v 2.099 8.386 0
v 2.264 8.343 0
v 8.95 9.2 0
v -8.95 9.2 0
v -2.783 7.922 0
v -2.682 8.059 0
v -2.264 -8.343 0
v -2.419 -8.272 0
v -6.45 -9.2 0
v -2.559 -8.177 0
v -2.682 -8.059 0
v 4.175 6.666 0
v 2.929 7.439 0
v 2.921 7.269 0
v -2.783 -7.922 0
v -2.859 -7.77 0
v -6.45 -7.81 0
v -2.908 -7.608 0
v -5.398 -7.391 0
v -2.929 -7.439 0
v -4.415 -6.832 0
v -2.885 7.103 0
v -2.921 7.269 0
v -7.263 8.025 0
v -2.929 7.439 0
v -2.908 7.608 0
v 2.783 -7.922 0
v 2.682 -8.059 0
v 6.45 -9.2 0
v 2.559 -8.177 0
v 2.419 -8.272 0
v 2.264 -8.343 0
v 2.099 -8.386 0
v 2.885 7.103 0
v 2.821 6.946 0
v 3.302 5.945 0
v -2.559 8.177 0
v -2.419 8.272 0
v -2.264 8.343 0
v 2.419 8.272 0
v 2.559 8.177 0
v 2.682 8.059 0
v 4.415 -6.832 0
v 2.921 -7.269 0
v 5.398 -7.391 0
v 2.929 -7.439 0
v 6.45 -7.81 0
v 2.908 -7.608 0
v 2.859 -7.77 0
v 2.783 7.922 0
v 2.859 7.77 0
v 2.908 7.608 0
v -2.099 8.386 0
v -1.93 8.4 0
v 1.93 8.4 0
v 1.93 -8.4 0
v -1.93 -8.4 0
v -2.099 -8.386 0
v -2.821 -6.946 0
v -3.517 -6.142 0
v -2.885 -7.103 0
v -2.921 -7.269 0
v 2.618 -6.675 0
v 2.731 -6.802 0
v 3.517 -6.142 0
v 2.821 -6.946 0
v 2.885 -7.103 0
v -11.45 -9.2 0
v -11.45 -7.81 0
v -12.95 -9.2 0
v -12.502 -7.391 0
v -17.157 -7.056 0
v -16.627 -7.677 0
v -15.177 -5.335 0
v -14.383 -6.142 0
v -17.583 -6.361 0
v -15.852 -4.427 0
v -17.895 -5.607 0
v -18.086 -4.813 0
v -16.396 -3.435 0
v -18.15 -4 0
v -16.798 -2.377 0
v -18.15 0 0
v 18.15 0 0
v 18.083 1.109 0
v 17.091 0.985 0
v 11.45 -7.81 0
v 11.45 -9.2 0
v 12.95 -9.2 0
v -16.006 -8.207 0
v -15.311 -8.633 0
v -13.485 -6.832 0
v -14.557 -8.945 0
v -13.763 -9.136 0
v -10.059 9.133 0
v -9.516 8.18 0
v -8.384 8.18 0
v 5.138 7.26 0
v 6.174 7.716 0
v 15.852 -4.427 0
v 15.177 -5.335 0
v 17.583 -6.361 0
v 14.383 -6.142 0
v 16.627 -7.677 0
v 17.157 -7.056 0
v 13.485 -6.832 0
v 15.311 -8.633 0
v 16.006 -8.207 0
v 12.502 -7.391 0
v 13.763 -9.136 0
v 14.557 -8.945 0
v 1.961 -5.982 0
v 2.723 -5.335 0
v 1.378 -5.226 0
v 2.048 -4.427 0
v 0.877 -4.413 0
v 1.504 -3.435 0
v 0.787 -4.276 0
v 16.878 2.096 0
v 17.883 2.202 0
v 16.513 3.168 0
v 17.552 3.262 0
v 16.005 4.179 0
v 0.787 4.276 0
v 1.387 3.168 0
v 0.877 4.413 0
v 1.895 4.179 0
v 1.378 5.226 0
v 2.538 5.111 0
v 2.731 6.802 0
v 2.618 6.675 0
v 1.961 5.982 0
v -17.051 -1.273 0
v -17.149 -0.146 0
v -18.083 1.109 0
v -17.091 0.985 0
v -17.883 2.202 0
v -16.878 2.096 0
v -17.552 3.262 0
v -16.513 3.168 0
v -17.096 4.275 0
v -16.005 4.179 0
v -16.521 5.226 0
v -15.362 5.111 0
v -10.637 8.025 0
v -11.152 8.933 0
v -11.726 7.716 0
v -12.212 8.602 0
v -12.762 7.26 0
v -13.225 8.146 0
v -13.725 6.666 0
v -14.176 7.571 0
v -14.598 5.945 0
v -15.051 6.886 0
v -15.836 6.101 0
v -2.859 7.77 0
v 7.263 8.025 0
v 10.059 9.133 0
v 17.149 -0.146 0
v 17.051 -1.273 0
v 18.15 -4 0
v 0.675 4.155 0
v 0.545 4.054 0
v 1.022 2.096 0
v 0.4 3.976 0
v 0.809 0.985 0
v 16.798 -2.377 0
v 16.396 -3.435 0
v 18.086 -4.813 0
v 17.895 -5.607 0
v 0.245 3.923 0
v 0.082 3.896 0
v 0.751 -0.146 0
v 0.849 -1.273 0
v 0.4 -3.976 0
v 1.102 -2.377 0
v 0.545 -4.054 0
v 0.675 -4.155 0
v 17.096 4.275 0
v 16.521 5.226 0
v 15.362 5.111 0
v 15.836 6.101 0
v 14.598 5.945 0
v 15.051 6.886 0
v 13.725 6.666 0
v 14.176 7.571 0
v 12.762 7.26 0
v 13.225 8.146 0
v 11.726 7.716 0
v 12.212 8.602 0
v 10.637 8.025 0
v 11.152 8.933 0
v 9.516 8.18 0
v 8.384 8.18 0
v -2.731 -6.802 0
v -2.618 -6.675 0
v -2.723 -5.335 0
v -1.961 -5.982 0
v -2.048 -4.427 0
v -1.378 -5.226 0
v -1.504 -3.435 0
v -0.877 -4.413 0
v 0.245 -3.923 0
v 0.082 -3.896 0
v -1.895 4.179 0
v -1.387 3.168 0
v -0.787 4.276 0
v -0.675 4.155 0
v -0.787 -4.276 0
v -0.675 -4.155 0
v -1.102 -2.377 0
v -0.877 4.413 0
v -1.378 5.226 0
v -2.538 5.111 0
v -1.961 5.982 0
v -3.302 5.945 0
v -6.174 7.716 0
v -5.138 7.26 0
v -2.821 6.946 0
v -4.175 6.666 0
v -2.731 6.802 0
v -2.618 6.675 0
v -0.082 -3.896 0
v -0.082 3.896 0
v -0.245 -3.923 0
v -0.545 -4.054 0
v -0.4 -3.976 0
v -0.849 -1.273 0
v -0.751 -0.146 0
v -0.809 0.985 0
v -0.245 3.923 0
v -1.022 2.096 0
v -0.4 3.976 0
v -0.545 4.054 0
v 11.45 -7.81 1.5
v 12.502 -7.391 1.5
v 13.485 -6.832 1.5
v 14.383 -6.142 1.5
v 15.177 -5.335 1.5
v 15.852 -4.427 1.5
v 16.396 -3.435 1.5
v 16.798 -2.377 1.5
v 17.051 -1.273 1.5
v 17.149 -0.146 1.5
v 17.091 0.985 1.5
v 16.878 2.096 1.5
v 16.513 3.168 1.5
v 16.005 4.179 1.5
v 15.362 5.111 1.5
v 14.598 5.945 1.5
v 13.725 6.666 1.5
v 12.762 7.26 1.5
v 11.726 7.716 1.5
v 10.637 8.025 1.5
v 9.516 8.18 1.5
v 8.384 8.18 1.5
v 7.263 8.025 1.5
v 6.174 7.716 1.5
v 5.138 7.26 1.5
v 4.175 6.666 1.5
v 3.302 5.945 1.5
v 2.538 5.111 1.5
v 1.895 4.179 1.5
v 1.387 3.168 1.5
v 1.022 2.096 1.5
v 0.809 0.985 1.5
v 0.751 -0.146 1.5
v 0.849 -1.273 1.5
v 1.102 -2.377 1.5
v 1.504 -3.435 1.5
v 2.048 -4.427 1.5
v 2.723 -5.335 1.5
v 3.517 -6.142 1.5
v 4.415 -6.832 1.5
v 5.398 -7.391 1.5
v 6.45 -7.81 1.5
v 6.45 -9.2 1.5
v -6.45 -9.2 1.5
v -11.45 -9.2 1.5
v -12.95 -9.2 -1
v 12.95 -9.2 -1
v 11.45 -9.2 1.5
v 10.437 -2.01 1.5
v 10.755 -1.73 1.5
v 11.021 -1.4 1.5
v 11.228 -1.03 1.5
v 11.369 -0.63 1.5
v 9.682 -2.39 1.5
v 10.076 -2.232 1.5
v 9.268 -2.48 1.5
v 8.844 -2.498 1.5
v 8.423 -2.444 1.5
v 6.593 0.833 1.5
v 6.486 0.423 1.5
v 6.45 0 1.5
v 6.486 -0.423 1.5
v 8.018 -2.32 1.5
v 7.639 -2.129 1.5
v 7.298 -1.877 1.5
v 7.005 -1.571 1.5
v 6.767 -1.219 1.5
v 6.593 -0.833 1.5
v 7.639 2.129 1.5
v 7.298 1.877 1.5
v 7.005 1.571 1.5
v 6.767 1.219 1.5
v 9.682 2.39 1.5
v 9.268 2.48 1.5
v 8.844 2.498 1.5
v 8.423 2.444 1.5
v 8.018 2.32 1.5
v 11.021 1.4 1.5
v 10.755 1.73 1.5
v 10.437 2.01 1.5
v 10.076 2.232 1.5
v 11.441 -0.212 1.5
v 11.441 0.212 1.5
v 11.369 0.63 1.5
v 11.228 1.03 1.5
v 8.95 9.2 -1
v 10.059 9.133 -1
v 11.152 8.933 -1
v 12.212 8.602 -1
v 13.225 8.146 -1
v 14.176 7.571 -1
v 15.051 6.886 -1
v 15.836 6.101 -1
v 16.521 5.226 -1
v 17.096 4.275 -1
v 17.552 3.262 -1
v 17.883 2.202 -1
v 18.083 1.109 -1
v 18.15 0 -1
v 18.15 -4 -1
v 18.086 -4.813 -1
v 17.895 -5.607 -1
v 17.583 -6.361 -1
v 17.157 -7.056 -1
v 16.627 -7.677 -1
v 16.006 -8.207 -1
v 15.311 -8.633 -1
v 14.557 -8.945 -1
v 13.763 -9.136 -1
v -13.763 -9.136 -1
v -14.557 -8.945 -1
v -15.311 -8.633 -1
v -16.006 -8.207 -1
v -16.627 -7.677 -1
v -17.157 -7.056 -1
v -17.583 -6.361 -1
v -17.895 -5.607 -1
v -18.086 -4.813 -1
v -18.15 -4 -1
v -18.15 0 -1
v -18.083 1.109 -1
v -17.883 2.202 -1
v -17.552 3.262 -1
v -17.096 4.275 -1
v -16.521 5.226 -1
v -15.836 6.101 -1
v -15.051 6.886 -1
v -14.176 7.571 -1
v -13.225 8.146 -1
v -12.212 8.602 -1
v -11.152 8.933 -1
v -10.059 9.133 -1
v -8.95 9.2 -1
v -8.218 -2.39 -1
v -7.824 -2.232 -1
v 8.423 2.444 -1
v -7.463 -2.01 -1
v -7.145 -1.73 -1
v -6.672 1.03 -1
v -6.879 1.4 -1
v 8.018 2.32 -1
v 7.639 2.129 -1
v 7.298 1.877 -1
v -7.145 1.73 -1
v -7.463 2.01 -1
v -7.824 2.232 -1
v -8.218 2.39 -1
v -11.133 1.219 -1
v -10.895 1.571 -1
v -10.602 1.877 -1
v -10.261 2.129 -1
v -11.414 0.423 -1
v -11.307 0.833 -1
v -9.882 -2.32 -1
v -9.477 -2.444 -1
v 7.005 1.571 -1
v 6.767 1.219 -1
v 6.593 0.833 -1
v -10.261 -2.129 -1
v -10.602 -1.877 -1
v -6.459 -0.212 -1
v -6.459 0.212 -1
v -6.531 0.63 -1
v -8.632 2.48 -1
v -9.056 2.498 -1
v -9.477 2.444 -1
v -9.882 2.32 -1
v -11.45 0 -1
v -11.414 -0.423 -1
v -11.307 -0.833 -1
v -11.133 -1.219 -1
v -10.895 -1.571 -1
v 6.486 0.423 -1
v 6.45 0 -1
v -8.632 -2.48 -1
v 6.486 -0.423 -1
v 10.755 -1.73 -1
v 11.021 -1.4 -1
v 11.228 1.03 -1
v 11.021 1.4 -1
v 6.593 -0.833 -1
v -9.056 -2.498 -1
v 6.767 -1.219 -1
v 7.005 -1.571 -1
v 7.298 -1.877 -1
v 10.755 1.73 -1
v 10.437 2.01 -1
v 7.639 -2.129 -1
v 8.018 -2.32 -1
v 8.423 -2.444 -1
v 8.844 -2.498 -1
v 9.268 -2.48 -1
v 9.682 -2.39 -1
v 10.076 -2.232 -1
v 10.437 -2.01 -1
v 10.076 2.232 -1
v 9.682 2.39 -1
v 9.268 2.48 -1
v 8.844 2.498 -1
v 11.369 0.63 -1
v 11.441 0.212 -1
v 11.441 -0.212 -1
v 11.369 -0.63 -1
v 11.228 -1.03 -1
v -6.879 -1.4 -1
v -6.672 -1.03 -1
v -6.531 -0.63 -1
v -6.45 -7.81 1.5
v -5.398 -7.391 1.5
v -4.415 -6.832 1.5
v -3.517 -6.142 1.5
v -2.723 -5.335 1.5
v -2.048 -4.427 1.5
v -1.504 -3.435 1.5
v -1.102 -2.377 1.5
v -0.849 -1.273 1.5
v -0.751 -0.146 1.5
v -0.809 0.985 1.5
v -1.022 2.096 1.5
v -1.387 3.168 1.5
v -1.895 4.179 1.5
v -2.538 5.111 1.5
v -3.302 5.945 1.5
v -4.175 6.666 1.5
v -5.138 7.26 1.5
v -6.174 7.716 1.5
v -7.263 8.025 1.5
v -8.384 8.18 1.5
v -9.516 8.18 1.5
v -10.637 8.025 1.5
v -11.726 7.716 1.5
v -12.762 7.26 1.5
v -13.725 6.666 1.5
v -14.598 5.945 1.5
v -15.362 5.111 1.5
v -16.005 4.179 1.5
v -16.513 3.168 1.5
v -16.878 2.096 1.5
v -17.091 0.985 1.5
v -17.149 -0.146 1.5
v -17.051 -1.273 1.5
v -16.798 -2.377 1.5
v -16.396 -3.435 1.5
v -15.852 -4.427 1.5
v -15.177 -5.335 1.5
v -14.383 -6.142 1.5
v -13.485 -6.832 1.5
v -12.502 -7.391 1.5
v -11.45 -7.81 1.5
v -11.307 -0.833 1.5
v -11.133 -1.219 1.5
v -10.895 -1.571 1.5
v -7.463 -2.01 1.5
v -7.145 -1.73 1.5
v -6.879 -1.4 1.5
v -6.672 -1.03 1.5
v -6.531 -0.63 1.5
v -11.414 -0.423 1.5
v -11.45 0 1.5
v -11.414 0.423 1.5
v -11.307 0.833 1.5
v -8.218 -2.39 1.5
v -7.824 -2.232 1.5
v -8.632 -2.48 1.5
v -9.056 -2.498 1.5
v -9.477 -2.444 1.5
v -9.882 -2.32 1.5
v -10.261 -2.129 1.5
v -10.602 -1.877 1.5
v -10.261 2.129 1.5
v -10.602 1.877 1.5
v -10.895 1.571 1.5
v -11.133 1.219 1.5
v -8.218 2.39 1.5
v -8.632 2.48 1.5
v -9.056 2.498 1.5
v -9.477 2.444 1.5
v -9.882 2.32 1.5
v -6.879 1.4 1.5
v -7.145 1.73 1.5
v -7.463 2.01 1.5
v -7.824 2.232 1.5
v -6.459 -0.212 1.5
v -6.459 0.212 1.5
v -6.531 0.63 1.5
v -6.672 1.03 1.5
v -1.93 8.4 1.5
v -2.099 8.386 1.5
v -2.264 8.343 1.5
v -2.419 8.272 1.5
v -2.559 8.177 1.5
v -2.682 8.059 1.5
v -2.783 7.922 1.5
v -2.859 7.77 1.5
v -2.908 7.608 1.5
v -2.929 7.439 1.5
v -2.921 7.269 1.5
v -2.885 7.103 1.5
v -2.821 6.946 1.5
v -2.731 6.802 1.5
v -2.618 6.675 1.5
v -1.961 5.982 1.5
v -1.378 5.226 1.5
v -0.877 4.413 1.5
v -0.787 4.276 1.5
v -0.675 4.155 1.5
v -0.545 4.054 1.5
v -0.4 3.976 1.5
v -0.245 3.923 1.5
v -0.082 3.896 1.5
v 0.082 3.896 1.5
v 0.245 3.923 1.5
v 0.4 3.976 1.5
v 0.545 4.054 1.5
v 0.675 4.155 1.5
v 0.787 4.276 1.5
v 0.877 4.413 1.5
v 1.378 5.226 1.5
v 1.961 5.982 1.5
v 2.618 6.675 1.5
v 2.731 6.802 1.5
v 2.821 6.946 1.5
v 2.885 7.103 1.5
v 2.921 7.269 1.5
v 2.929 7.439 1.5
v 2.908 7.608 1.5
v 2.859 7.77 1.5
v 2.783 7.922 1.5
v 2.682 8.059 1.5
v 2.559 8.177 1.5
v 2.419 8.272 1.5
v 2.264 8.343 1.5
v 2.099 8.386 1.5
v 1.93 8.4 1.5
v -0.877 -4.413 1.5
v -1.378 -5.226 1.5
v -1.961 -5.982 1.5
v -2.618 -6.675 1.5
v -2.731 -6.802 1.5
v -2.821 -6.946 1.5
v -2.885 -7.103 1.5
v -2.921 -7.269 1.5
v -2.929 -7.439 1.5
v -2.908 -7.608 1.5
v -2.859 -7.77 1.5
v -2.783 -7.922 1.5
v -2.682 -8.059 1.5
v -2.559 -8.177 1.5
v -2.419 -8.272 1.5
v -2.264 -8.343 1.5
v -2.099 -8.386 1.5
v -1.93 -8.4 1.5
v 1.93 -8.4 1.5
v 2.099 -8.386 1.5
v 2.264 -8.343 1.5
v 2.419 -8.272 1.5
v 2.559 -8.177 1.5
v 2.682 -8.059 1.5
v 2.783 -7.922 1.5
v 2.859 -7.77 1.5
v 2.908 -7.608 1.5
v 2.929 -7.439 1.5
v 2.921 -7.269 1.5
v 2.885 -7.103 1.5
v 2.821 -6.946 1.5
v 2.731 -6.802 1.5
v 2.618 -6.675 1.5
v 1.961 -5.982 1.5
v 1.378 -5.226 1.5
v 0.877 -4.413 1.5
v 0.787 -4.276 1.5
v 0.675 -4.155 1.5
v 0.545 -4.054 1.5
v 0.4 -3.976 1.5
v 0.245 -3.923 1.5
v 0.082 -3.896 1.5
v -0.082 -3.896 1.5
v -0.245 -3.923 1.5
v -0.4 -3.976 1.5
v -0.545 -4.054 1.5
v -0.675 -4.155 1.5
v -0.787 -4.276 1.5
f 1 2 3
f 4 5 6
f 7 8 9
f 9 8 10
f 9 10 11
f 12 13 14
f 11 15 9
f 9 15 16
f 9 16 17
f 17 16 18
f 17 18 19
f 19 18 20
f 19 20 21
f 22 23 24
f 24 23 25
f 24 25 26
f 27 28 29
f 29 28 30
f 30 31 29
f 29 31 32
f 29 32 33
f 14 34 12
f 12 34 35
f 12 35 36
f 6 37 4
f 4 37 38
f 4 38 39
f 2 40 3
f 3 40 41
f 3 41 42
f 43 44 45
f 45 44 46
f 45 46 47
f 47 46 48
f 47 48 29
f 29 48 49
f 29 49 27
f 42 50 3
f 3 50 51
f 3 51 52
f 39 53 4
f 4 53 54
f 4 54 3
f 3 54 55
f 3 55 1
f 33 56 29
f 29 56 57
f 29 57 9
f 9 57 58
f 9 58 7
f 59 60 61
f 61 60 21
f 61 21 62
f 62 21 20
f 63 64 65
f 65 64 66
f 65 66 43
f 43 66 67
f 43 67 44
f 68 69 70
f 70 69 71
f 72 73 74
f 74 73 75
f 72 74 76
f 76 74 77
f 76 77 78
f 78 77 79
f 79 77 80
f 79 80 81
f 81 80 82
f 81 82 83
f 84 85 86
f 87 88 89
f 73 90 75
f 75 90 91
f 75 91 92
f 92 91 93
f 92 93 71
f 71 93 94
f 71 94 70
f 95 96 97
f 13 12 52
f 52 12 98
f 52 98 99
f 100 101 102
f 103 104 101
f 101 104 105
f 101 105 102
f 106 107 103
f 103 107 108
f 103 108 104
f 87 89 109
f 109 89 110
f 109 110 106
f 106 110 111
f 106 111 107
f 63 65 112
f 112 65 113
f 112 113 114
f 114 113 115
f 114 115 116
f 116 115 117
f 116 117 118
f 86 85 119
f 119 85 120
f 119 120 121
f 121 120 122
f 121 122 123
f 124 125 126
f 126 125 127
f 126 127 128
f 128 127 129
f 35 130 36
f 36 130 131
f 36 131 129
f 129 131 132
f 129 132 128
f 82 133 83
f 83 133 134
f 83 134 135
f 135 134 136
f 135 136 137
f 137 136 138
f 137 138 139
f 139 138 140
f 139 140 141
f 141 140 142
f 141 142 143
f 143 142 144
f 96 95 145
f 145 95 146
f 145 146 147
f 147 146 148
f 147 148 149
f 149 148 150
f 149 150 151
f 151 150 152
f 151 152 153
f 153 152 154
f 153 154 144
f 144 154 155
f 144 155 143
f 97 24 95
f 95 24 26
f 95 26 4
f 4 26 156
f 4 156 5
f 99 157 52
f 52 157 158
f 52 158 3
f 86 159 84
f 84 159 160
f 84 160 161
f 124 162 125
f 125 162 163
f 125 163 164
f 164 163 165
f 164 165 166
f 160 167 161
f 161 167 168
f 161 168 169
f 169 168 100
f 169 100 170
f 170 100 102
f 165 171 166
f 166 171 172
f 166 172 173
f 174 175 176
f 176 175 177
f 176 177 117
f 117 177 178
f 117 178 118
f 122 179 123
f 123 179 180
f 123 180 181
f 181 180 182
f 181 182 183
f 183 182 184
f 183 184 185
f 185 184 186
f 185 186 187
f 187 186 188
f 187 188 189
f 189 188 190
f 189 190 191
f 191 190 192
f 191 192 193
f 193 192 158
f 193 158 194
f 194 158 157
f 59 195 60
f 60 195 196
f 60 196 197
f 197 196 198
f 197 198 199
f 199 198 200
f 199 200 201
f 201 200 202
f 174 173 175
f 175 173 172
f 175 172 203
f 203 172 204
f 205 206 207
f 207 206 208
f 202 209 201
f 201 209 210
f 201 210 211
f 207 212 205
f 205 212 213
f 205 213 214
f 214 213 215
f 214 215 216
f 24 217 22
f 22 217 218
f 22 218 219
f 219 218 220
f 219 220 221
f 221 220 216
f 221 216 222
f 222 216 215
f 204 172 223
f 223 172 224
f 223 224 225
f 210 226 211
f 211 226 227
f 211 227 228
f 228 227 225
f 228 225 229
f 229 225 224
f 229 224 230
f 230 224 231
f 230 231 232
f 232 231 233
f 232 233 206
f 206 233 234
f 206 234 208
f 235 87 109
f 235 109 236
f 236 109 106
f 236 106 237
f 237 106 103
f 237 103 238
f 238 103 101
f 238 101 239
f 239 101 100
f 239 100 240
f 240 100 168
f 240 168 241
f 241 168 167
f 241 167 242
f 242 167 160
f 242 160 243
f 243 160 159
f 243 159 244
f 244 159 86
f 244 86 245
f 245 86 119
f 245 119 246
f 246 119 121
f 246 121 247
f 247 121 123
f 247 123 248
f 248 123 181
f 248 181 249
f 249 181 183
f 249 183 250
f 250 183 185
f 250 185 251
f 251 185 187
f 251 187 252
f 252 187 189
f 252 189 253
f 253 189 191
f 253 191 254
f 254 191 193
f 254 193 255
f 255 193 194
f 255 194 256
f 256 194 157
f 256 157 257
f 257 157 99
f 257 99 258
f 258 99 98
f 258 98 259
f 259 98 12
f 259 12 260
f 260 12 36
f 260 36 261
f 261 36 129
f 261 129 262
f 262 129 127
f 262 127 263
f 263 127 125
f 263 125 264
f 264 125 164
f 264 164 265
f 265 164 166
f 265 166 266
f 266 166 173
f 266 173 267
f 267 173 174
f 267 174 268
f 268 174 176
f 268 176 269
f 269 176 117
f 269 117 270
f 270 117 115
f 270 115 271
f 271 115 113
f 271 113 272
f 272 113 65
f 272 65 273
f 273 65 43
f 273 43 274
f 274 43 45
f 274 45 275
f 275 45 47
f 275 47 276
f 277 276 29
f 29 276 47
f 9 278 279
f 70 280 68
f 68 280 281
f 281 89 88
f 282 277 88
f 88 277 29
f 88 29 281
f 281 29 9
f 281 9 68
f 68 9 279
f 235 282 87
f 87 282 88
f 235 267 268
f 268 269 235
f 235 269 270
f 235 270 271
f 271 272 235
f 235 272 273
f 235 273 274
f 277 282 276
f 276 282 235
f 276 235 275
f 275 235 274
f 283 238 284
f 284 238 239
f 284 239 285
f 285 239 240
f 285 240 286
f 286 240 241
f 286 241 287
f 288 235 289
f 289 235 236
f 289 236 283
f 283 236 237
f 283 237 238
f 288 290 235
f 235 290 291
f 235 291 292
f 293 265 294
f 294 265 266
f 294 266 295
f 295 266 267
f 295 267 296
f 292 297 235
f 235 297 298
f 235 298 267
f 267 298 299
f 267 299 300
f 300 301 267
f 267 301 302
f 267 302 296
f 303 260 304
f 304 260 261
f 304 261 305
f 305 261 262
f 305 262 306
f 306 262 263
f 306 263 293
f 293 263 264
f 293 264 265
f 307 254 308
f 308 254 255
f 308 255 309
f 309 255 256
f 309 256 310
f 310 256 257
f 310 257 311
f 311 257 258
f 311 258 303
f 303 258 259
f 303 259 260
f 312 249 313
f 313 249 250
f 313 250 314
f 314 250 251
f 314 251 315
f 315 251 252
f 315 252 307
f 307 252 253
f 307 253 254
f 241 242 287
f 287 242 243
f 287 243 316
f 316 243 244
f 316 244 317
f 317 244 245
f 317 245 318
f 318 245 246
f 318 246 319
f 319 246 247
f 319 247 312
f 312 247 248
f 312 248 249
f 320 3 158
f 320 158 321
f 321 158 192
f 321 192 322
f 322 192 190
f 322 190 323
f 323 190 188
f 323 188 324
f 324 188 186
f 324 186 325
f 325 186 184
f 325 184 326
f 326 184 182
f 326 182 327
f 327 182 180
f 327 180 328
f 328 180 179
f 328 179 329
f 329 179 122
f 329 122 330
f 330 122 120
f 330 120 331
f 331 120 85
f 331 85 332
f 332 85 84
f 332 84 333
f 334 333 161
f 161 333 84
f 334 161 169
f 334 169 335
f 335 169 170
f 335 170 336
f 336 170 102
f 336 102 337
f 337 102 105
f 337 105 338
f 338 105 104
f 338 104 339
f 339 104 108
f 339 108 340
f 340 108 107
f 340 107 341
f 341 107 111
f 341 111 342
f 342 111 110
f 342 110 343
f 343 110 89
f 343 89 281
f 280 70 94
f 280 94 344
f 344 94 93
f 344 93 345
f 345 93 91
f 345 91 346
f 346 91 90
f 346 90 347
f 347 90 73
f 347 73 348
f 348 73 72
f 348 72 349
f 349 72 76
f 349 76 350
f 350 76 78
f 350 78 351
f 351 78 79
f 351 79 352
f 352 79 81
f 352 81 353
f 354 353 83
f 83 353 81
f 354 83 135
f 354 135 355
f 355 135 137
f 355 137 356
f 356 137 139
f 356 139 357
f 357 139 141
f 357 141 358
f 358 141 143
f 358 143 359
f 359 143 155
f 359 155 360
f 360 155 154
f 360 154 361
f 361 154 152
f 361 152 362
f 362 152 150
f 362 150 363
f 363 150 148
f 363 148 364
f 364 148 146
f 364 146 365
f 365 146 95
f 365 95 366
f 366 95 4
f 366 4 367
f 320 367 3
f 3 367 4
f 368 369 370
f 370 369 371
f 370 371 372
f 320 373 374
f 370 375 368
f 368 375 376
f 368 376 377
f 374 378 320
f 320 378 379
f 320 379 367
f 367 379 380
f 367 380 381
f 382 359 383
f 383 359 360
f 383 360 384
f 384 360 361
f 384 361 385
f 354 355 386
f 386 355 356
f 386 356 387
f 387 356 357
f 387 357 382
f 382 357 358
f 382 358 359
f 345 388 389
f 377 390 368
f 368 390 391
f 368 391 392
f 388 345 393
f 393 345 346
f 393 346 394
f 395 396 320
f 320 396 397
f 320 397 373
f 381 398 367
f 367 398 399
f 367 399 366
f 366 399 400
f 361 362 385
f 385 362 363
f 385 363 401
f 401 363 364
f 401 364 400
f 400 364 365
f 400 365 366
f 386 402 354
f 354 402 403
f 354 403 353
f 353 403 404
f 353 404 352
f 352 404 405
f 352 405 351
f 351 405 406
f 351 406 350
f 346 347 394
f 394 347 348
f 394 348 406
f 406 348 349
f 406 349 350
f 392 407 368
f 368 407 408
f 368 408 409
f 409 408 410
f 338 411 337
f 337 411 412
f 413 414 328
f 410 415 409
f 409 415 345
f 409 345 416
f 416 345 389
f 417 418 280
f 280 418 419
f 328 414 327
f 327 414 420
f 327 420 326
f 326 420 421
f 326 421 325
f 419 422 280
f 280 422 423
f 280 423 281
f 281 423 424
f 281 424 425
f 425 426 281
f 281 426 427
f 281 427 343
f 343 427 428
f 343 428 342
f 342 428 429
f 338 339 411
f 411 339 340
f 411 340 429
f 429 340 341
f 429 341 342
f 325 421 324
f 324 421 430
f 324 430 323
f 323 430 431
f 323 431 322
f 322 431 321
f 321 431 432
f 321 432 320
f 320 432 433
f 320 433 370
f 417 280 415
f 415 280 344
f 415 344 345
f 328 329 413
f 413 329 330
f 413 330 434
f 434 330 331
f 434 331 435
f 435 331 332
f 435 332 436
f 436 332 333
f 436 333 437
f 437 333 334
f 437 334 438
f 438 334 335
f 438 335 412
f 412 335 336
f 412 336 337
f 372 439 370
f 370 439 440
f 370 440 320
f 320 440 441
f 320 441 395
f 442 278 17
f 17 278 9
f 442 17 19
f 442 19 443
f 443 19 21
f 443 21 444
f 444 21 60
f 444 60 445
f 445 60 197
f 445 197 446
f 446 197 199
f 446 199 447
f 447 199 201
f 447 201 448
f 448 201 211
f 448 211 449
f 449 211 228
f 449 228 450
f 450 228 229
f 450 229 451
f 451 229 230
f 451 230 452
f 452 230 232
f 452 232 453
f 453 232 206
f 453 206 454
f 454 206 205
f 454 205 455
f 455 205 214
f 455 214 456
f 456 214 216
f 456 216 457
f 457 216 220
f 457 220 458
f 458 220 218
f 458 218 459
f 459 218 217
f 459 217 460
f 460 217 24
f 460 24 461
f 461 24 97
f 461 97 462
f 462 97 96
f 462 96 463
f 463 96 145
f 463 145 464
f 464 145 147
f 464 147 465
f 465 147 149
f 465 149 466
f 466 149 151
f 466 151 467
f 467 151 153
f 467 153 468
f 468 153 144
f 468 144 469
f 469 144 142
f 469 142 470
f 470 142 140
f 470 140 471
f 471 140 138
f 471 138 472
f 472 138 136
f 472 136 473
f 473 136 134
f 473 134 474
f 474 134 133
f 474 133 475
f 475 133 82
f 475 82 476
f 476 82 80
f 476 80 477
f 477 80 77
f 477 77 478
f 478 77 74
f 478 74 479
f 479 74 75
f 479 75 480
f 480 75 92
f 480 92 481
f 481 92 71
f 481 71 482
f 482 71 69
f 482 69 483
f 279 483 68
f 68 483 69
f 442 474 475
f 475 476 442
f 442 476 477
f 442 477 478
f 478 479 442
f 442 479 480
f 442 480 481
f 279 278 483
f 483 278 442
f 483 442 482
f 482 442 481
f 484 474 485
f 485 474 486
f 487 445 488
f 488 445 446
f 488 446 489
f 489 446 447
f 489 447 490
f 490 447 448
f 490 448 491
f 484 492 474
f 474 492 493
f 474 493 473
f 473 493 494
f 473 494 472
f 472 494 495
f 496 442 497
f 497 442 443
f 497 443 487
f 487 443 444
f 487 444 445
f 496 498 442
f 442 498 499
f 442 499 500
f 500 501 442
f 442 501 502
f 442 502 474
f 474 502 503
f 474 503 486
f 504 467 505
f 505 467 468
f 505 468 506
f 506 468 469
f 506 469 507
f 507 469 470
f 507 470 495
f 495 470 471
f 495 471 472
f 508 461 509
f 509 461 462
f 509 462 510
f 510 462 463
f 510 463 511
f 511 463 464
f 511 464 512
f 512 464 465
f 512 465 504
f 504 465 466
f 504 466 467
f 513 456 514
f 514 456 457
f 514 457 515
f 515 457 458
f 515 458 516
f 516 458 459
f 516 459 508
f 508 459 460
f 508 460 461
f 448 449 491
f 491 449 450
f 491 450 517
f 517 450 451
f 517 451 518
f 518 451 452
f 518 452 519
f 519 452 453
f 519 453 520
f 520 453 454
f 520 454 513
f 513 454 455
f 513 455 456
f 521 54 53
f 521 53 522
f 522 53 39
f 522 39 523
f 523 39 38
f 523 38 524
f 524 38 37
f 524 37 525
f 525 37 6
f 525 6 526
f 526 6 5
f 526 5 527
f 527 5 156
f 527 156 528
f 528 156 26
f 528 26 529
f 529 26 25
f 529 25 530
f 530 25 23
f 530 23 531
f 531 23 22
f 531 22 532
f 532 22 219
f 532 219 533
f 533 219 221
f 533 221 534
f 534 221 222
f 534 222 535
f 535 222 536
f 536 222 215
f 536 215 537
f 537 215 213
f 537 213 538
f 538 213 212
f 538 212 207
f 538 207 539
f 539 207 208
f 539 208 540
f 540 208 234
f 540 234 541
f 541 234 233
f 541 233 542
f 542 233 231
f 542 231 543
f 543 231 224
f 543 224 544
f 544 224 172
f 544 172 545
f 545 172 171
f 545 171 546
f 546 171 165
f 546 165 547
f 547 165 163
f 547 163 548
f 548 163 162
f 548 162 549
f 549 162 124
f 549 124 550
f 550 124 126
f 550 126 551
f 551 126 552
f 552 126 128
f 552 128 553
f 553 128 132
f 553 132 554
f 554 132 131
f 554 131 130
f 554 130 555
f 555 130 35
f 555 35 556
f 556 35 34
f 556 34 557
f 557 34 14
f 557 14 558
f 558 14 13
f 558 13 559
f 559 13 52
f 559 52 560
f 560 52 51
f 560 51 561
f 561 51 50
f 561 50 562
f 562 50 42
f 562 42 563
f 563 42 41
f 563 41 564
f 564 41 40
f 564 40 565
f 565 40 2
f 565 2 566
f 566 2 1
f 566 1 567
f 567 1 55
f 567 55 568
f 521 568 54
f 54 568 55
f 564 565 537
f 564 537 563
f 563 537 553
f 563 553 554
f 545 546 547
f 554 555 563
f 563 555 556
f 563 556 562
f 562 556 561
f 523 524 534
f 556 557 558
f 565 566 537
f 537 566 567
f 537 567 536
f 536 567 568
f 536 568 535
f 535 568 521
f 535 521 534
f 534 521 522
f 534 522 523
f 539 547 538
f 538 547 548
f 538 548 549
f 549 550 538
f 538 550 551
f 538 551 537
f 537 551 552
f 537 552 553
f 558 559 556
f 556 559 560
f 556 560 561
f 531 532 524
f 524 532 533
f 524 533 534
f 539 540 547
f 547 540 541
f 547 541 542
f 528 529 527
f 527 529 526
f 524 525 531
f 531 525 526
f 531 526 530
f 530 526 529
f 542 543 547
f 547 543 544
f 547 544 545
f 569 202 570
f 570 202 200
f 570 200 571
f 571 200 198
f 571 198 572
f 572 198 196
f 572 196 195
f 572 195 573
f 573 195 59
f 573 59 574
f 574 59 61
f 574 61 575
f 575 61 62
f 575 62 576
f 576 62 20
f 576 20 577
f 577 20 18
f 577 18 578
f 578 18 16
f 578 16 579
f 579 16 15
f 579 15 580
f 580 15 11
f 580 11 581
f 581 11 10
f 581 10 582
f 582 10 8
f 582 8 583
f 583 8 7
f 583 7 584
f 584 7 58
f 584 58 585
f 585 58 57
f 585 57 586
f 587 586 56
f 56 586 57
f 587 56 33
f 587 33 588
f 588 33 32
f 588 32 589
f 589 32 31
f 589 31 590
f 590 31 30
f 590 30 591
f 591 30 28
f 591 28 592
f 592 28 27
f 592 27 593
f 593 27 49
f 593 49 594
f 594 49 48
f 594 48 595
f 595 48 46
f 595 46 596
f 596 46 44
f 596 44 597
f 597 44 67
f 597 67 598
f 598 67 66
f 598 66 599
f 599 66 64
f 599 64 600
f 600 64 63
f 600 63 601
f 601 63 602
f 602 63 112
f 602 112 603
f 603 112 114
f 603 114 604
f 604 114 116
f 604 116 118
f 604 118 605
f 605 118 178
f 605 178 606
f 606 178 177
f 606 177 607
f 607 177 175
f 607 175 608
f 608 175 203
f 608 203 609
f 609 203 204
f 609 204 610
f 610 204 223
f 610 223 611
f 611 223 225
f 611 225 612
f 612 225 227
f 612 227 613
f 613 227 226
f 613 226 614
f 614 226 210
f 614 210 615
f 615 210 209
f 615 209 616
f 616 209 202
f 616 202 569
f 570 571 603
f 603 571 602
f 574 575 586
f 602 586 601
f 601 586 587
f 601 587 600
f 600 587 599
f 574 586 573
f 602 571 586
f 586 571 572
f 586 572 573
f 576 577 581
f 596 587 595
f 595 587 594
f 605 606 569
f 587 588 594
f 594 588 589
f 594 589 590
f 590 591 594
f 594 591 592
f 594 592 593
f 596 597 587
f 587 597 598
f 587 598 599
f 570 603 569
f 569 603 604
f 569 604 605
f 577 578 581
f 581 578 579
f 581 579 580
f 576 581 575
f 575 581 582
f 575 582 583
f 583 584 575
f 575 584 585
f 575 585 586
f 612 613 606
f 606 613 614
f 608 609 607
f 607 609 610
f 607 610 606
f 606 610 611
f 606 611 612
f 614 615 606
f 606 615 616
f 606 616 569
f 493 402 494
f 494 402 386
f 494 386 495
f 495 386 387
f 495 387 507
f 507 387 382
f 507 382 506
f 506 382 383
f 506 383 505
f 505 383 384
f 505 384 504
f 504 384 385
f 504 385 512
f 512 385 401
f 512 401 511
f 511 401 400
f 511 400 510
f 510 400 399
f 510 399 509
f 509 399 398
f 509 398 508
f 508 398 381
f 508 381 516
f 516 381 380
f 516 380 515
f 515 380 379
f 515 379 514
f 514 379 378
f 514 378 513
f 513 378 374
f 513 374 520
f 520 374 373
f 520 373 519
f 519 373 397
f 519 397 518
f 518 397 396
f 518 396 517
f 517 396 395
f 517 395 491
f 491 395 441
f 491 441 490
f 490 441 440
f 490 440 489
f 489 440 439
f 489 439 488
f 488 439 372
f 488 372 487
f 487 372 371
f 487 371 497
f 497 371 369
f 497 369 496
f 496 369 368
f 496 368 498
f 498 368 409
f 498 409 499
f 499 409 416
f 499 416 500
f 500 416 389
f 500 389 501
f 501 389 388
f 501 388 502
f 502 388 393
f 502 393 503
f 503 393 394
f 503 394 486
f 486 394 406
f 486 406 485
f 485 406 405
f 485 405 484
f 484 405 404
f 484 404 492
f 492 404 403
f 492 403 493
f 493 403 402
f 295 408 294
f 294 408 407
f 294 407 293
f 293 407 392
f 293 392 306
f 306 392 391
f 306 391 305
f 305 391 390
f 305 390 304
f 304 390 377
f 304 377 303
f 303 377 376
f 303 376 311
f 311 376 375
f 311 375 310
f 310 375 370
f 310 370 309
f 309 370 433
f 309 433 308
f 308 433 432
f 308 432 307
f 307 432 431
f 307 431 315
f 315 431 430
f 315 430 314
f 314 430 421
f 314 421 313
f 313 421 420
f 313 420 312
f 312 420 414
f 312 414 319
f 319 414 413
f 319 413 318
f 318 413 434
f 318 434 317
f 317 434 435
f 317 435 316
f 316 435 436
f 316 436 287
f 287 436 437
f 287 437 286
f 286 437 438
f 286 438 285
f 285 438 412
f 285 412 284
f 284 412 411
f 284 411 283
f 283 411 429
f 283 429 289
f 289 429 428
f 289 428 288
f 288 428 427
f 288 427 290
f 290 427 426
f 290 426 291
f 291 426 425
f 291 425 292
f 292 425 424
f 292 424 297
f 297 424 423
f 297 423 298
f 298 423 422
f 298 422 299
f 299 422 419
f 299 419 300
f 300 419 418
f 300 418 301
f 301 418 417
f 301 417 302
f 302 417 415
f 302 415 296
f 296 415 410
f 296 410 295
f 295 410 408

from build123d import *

# Parameters (mm, degrees)
EXTRUDE_1_DEPTH     = 1.5
EXTRUDE_1_2_DEPTH   = 1.5
EXTRUDE_1_3_DEPTH   = 1.5
EXTRUDE_1_4_DEPTH   = 1.5
EXTRUDE_START       = 1
EXTRUDE_2_DEPTH     = 1
SKETCH_4_R          = 2.5
CUT_EXTRUDE_1_DEPTH = 21.501524334


with BuildPart() as part:
    # Эскиз2 → Бобышка-Вытянуть1 (new body)
    with BuildSketch(Plane.XY):
        with BuildLine():
            Line((-1.93002849, -8.4), (1.93002849, -8.4))
            ThreePointArc((1.93002849, -8.4), (2.858869218, -7.770479287), (2.618260991, -6.674509804))
            ThreePointArc((2.618260991, -6.674509804), (1.659625246, -5.611633981), (0.87745098, -4.412930129))
            ThreePointArc((0.87745098, -4.412930129), (0, -3.892596448), (-0.87745098, -4.412930129))
            ThreePointArc((-0.87745098, -4.412930129), (-1.659625246, -5.611633981), (-2.618260991, -6.674509804))
            ThreePointArc((-2.618260991, -6.674509804), (-2.858869218, -7.770479287), (-1.93002849, -8.4))
        make_face()
    extrude(amount=EXTRUDE_1_DEPTH)



with BuildPart() as body_2:
    # Эскиз2 → Extrude 1 2 (new body)
    with BuildSketch(Plane.XY):
        with BuildLine():
            Line((1.93002849, 8.4), (-1.93002849, 8.4))
            ThreePointArc((-1.93002849, 8.4), (-2.858869218, 7.770479287), (-2.618260991, 6.674509804))
            ThreePointArc((-2.618260991, 6.674509804), (-1.659625246, 5.611633981), (-0.87745098, 4.412930129))
            ThreePointArc((-0.87745098, 4.412930129), (0, 3.892596448), (0.87745098, 4.412930129))
            ThreePointArc((0.87745098, 4.412930129), (1.659625246, 5.611633981), (2.618260991, 6.674509804))
            ThreePointArc((2.618260991, 6.674509804), (2.858869218, 7.770479287), (1.93002849, 8.4))
        make_face()
    extrude(amount=EXTRUDE_1_2_DEPTH)


with BuildPart() as body_3:
    # Эскиз2 → Extrude 1 3 (new body)
    with BuildSketch(Plane.XY):
        with BuildLine():
            Line((-11.45, -8.019351595), (-11.45, -7.809609465))
            ThreePointArc((-11.45, -7.809609465), (-8.95, 8.2), (-6.45, -7.809609465))
            Line((-6.45, -7.809609465), (-6.45, -8.019351595))
            Line((-6.45, -8.019351595), (-6.45, -9.2))
            Line((-6.45, -9.2), (-11.45, -9.2))
            Line((-11.45, -9.2), (-11.45, -8.019351595))
        make_face()
    extrude(amount=EXTRUDE_1_3_DEPTH)


with BuildPart() as body_4:
    # Эскиз2 → Extrude 1 4 (new body)
    with BuildSketch(Plane.XY):
        with BuildLine():
            Line((6.45, -8.019351595), (6.45, -7.809609465))
            ThreePointArc((6.45, -7.809609465), (8.95, 8.2), (11.45, -7.809609465))
            Line((11.45, -7.809609465), (11.45, -8.019351595))
            Line((11.45, -8.019351595), (11.45, -9.2))
            Line((11.45, -9.2), (6.45, -9.2))
            Line((6.45, -9.2), (6.45, -8.019351595))
        make_face()
    extrude(amount=EXTRUDE_1_4_DEPTH)


with BuildPart() as part_1:
    add(part.part)

    add(body_2.part)  # Бобышка-Вытянуть2 merges body 2

    add(body_3.part)  # Бобышка-Вытянуть2 merges body 3

    add(body_4.part)  # Бобышка-Вытянуть2 merges body 4
    # Эскиз3 → Бобышка-Вытянуть2 (add)
    with BuildSketch(Plane(origin=(0, 0, 0), x_dir=(-1, 0, 0), z_dir=(0, 0, -1)).offset(EXTRUDE_START)):
        with BuildLine():
            Line((-8.95, 9.2), (8.95, 9.2))
            ThreePointArc((8.95, 9.2), (15.455382387, 6.505382387), (18.15, 0))
            Line((18.15, 0), (18.15, -4))
            ThreePointArc((18.15, -4), (16.626955262, -7.676955262), (12.95, -9.2))
            Line((12.95, -9.2), (11.45, -9.2))
            Line((11.45, -9.2), (6.45, -9.2))
            Line((6.45, -9.2), (-6.45, -9.2))
            Line((-6.45, -9.2), (-11.45, -9.2))
            Line((-11.45, -9.2), (-12.95, -9.2))
            ThreePointArc((-12.95, -9.2), (-16.626955262, -7.676955262), (-18.15, -4))
            Line((-18.15, -4), (-18.15, 0))
            ThreePointArc((-18.15, 0), (-15.455382387, 6.505382387), (-8.95, 9.2))
        make_face()
    extrude(amount=-EXTRUDE_2_DEPTH)

    # Эскиз4 → Вырез-Вытянуть1 (cut, through all)
    with BuildSketch(Plane(origin=(0, 0, -1), x_dir=(-1, 0, 0), z_dir=(0, 0, -1))):
        with Locations((-8.95, 0)):
            Circle(SKETCH_4_R)
        with Locations((8.95, 0)):
            Circle(SKETCH_4_R)
    extrude(amount=-CUT_EXTRUDE_1_DEPTH, mode=Mode.SUBTRACT)


solid = part_1.part
